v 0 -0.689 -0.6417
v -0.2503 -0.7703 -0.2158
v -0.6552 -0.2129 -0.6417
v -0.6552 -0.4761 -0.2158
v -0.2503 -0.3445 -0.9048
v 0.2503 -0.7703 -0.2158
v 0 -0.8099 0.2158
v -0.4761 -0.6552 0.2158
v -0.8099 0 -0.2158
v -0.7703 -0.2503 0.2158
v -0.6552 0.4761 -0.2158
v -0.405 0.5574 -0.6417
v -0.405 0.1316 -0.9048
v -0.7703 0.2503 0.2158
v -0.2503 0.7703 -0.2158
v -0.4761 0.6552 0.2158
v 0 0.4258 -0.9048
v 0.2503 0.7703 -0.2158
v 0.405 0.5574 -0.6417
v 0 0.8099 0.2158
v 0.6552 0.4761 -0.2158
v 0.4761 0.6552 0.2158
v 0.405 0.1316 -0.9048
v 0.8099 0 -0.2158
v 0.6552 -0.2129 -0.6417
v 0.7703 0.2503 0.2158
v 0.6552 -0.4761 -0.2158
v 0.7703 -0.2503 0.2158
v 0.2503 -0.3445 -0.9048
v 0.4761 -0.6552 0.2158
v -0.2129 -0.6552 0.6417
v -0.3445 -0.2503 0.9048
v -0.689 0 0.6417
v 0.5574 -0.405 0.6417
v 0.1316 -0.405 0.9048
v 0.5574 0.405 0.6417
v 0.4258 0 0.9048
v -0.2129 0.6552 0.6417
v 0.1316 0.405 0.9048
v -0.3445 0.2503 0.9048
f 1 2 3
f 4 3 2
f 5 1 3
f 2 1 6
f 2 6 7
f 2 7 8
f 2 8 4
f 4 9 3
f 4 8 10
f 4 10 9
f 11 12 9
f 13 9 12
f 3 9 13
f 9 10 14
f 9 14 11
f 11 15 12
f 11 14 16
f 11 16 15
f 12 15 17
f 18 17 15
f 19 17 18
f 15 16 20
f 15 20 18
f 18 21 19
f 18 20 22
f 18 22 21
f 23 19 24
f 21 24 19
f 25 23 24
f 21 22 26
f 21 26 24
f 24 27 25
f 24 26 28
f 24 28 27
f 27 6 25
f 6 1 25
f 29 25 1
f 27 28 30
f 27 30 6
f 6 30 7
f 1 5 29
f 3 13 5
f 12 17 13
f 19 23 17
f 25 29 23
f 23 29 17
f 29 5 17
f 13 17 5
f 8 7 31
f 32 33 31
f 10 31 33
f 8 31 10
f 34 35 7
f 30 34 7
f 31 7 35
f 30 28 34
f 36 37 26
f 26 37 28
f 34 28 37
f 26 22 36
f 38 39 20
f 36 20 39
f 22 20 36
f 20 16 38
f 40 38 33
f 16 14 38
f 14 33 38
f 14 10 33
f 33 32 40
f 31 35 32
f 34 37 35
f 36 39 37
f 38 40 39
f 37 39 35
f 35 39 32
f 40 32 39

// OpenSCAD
polyhedron( points = [[-0.250283174153138, -0.770292406488828, -0.215843459794846], [-0.655249857789926, -0.476066888356963, -0.215843459794846], [-0.809933366886947, 2.99209236502574e-10, -0.215843459794846], [-0.655249858471507, 0.476066888941489, -0.215843459794846], [-0.25028317525596, 0.77029240703699, -0.215843459794846], [0.250283174091217, 0.770292407036995, -0.215843459794846], [0.655249857754422, 0.476066888941489, -0.215843459794846], [0.809933366894191, 2.99209236502574e-10, -0.215843459794846], [0.655249858521505, -0.47606688835696, -0.215843459794846], [0.250283175332374, -0.770292406488828, -0.215843459794846], [6.02592999528622e-10, -0.688970473140905, -0.641650629577812], [-0.655249857777656, -0.212903584617922, -0.641650629364757], [-0.404966682859698, 0.557388821713629, -0.641650629597913], [0.404966684160025, 0.557388821625649, -0.641650629597913], [0.655249858824438, -0.212903584861533, -0.641650629597913], [-0.250283174193796, -0.344485236307712, -0.904813932967159], [-0.404966682869491, 0.131581651906547, -0.904813933188544], [6.31503164975312e-10, 0.425807169823331, -0.904813933188544], [0.404966684074614, 0.131581651826877, -0.904813933188544], [0.250283175278231, -0.344485236156269, -0.904813932887278], [-0.476066887925203, -0.655249858144568, 0.215843460234216], [6.02592999528622e-10, -0.809933366994099, 0.215843460234216], [0.476066888754917, -0.655249858407946, 0.215843460161941], [0.770292406186042, -0.250283175163666, 0.215843460044998], [0.770292405601, 0.250283174059288, 0.215843459928055], [0.476066887223264, 0.655249857492761, 0.21584345985578], [-1.29063907077465e-09, 0.80993336638504, 0.21584345985578], [-0.476066889456859, 0.65524985784163, 0.215843459928055], [-0.770292406924341, 0.250283174623772, 0.215843460044998], [-0.77029240638425, -0.250283174599178, 0.215843460161941], [-0.688970473304389, 9.1304016602271e-11, 0.641650629498064], [-0.212903584252015, -0.655249858141061, 0.64165062940195], [0.557388821522127, -0.404966683671211, 0.641650629518167], [0.557388820560259, 0.404966682923681, 0.641650629328947], [-0.212903585909608, 0.655249857773644, 0.641650629328947], [-0.344485236309686, -0.250283174654015, 0.904813932683521], [0.131581651893871, -0.404966683444386, 0.904813932904907], [0.425807169263948, -2.76822461687482e-10, 0.904813932787964], [0.131581650940312, 0.404966683074887, 0.904813932715693], [-0.344485236698335, 0.25028317455545, 0.904813932486699]], faces = [[0, 1, 11, 15, 10], [0, 10, 9], [0, 9, 21], [0, 21, 20], [0, 20, 1], [1, 2, 11], [1, 20, 29], [1, 29, 2], [2, 3, 12, 16, 11], [2, 29, 28], [2, 28, 3], [3, 4, 12], [3, 28, 27], [3, 27, 4], [4, 5, 13, 17, 12], [4, 27, 26], [4, 26, 5], [5, 6, 13], [5, 26, 25], [5, 25, 6], [6, 7, 14, 18, 13], [6, 25, 24], [6, 24, 7], [7, 8, 14], [7, 24, 23], [7, 23, 8], [8, 9, 10, 19, 14], [8, 23, 22], [8, 22, 9], [9, 22, 21], [10, 15, 19], [11, 16, 15], [12, 17, 16], [13, 18, 17], [14, 19, 18], [15, 16, 17, 18, 19], [20, 21, 31], [20, 31, 35, 30, 29], [21, 22, 32, 36, 31], [22, 23, 32], [23, 24, 33, 37, 32], [24, 25, 33], [25, 26, 34, 38, 33], [26, 27, 34], [27, 28, 30, 39, 34], [28, 29, 30], [30, 35, 39], [31, 36, 35], [32, 37, 36], [33, 38, 37], [34, 39, 38], [35, 36, 37, 38, 39]]);
